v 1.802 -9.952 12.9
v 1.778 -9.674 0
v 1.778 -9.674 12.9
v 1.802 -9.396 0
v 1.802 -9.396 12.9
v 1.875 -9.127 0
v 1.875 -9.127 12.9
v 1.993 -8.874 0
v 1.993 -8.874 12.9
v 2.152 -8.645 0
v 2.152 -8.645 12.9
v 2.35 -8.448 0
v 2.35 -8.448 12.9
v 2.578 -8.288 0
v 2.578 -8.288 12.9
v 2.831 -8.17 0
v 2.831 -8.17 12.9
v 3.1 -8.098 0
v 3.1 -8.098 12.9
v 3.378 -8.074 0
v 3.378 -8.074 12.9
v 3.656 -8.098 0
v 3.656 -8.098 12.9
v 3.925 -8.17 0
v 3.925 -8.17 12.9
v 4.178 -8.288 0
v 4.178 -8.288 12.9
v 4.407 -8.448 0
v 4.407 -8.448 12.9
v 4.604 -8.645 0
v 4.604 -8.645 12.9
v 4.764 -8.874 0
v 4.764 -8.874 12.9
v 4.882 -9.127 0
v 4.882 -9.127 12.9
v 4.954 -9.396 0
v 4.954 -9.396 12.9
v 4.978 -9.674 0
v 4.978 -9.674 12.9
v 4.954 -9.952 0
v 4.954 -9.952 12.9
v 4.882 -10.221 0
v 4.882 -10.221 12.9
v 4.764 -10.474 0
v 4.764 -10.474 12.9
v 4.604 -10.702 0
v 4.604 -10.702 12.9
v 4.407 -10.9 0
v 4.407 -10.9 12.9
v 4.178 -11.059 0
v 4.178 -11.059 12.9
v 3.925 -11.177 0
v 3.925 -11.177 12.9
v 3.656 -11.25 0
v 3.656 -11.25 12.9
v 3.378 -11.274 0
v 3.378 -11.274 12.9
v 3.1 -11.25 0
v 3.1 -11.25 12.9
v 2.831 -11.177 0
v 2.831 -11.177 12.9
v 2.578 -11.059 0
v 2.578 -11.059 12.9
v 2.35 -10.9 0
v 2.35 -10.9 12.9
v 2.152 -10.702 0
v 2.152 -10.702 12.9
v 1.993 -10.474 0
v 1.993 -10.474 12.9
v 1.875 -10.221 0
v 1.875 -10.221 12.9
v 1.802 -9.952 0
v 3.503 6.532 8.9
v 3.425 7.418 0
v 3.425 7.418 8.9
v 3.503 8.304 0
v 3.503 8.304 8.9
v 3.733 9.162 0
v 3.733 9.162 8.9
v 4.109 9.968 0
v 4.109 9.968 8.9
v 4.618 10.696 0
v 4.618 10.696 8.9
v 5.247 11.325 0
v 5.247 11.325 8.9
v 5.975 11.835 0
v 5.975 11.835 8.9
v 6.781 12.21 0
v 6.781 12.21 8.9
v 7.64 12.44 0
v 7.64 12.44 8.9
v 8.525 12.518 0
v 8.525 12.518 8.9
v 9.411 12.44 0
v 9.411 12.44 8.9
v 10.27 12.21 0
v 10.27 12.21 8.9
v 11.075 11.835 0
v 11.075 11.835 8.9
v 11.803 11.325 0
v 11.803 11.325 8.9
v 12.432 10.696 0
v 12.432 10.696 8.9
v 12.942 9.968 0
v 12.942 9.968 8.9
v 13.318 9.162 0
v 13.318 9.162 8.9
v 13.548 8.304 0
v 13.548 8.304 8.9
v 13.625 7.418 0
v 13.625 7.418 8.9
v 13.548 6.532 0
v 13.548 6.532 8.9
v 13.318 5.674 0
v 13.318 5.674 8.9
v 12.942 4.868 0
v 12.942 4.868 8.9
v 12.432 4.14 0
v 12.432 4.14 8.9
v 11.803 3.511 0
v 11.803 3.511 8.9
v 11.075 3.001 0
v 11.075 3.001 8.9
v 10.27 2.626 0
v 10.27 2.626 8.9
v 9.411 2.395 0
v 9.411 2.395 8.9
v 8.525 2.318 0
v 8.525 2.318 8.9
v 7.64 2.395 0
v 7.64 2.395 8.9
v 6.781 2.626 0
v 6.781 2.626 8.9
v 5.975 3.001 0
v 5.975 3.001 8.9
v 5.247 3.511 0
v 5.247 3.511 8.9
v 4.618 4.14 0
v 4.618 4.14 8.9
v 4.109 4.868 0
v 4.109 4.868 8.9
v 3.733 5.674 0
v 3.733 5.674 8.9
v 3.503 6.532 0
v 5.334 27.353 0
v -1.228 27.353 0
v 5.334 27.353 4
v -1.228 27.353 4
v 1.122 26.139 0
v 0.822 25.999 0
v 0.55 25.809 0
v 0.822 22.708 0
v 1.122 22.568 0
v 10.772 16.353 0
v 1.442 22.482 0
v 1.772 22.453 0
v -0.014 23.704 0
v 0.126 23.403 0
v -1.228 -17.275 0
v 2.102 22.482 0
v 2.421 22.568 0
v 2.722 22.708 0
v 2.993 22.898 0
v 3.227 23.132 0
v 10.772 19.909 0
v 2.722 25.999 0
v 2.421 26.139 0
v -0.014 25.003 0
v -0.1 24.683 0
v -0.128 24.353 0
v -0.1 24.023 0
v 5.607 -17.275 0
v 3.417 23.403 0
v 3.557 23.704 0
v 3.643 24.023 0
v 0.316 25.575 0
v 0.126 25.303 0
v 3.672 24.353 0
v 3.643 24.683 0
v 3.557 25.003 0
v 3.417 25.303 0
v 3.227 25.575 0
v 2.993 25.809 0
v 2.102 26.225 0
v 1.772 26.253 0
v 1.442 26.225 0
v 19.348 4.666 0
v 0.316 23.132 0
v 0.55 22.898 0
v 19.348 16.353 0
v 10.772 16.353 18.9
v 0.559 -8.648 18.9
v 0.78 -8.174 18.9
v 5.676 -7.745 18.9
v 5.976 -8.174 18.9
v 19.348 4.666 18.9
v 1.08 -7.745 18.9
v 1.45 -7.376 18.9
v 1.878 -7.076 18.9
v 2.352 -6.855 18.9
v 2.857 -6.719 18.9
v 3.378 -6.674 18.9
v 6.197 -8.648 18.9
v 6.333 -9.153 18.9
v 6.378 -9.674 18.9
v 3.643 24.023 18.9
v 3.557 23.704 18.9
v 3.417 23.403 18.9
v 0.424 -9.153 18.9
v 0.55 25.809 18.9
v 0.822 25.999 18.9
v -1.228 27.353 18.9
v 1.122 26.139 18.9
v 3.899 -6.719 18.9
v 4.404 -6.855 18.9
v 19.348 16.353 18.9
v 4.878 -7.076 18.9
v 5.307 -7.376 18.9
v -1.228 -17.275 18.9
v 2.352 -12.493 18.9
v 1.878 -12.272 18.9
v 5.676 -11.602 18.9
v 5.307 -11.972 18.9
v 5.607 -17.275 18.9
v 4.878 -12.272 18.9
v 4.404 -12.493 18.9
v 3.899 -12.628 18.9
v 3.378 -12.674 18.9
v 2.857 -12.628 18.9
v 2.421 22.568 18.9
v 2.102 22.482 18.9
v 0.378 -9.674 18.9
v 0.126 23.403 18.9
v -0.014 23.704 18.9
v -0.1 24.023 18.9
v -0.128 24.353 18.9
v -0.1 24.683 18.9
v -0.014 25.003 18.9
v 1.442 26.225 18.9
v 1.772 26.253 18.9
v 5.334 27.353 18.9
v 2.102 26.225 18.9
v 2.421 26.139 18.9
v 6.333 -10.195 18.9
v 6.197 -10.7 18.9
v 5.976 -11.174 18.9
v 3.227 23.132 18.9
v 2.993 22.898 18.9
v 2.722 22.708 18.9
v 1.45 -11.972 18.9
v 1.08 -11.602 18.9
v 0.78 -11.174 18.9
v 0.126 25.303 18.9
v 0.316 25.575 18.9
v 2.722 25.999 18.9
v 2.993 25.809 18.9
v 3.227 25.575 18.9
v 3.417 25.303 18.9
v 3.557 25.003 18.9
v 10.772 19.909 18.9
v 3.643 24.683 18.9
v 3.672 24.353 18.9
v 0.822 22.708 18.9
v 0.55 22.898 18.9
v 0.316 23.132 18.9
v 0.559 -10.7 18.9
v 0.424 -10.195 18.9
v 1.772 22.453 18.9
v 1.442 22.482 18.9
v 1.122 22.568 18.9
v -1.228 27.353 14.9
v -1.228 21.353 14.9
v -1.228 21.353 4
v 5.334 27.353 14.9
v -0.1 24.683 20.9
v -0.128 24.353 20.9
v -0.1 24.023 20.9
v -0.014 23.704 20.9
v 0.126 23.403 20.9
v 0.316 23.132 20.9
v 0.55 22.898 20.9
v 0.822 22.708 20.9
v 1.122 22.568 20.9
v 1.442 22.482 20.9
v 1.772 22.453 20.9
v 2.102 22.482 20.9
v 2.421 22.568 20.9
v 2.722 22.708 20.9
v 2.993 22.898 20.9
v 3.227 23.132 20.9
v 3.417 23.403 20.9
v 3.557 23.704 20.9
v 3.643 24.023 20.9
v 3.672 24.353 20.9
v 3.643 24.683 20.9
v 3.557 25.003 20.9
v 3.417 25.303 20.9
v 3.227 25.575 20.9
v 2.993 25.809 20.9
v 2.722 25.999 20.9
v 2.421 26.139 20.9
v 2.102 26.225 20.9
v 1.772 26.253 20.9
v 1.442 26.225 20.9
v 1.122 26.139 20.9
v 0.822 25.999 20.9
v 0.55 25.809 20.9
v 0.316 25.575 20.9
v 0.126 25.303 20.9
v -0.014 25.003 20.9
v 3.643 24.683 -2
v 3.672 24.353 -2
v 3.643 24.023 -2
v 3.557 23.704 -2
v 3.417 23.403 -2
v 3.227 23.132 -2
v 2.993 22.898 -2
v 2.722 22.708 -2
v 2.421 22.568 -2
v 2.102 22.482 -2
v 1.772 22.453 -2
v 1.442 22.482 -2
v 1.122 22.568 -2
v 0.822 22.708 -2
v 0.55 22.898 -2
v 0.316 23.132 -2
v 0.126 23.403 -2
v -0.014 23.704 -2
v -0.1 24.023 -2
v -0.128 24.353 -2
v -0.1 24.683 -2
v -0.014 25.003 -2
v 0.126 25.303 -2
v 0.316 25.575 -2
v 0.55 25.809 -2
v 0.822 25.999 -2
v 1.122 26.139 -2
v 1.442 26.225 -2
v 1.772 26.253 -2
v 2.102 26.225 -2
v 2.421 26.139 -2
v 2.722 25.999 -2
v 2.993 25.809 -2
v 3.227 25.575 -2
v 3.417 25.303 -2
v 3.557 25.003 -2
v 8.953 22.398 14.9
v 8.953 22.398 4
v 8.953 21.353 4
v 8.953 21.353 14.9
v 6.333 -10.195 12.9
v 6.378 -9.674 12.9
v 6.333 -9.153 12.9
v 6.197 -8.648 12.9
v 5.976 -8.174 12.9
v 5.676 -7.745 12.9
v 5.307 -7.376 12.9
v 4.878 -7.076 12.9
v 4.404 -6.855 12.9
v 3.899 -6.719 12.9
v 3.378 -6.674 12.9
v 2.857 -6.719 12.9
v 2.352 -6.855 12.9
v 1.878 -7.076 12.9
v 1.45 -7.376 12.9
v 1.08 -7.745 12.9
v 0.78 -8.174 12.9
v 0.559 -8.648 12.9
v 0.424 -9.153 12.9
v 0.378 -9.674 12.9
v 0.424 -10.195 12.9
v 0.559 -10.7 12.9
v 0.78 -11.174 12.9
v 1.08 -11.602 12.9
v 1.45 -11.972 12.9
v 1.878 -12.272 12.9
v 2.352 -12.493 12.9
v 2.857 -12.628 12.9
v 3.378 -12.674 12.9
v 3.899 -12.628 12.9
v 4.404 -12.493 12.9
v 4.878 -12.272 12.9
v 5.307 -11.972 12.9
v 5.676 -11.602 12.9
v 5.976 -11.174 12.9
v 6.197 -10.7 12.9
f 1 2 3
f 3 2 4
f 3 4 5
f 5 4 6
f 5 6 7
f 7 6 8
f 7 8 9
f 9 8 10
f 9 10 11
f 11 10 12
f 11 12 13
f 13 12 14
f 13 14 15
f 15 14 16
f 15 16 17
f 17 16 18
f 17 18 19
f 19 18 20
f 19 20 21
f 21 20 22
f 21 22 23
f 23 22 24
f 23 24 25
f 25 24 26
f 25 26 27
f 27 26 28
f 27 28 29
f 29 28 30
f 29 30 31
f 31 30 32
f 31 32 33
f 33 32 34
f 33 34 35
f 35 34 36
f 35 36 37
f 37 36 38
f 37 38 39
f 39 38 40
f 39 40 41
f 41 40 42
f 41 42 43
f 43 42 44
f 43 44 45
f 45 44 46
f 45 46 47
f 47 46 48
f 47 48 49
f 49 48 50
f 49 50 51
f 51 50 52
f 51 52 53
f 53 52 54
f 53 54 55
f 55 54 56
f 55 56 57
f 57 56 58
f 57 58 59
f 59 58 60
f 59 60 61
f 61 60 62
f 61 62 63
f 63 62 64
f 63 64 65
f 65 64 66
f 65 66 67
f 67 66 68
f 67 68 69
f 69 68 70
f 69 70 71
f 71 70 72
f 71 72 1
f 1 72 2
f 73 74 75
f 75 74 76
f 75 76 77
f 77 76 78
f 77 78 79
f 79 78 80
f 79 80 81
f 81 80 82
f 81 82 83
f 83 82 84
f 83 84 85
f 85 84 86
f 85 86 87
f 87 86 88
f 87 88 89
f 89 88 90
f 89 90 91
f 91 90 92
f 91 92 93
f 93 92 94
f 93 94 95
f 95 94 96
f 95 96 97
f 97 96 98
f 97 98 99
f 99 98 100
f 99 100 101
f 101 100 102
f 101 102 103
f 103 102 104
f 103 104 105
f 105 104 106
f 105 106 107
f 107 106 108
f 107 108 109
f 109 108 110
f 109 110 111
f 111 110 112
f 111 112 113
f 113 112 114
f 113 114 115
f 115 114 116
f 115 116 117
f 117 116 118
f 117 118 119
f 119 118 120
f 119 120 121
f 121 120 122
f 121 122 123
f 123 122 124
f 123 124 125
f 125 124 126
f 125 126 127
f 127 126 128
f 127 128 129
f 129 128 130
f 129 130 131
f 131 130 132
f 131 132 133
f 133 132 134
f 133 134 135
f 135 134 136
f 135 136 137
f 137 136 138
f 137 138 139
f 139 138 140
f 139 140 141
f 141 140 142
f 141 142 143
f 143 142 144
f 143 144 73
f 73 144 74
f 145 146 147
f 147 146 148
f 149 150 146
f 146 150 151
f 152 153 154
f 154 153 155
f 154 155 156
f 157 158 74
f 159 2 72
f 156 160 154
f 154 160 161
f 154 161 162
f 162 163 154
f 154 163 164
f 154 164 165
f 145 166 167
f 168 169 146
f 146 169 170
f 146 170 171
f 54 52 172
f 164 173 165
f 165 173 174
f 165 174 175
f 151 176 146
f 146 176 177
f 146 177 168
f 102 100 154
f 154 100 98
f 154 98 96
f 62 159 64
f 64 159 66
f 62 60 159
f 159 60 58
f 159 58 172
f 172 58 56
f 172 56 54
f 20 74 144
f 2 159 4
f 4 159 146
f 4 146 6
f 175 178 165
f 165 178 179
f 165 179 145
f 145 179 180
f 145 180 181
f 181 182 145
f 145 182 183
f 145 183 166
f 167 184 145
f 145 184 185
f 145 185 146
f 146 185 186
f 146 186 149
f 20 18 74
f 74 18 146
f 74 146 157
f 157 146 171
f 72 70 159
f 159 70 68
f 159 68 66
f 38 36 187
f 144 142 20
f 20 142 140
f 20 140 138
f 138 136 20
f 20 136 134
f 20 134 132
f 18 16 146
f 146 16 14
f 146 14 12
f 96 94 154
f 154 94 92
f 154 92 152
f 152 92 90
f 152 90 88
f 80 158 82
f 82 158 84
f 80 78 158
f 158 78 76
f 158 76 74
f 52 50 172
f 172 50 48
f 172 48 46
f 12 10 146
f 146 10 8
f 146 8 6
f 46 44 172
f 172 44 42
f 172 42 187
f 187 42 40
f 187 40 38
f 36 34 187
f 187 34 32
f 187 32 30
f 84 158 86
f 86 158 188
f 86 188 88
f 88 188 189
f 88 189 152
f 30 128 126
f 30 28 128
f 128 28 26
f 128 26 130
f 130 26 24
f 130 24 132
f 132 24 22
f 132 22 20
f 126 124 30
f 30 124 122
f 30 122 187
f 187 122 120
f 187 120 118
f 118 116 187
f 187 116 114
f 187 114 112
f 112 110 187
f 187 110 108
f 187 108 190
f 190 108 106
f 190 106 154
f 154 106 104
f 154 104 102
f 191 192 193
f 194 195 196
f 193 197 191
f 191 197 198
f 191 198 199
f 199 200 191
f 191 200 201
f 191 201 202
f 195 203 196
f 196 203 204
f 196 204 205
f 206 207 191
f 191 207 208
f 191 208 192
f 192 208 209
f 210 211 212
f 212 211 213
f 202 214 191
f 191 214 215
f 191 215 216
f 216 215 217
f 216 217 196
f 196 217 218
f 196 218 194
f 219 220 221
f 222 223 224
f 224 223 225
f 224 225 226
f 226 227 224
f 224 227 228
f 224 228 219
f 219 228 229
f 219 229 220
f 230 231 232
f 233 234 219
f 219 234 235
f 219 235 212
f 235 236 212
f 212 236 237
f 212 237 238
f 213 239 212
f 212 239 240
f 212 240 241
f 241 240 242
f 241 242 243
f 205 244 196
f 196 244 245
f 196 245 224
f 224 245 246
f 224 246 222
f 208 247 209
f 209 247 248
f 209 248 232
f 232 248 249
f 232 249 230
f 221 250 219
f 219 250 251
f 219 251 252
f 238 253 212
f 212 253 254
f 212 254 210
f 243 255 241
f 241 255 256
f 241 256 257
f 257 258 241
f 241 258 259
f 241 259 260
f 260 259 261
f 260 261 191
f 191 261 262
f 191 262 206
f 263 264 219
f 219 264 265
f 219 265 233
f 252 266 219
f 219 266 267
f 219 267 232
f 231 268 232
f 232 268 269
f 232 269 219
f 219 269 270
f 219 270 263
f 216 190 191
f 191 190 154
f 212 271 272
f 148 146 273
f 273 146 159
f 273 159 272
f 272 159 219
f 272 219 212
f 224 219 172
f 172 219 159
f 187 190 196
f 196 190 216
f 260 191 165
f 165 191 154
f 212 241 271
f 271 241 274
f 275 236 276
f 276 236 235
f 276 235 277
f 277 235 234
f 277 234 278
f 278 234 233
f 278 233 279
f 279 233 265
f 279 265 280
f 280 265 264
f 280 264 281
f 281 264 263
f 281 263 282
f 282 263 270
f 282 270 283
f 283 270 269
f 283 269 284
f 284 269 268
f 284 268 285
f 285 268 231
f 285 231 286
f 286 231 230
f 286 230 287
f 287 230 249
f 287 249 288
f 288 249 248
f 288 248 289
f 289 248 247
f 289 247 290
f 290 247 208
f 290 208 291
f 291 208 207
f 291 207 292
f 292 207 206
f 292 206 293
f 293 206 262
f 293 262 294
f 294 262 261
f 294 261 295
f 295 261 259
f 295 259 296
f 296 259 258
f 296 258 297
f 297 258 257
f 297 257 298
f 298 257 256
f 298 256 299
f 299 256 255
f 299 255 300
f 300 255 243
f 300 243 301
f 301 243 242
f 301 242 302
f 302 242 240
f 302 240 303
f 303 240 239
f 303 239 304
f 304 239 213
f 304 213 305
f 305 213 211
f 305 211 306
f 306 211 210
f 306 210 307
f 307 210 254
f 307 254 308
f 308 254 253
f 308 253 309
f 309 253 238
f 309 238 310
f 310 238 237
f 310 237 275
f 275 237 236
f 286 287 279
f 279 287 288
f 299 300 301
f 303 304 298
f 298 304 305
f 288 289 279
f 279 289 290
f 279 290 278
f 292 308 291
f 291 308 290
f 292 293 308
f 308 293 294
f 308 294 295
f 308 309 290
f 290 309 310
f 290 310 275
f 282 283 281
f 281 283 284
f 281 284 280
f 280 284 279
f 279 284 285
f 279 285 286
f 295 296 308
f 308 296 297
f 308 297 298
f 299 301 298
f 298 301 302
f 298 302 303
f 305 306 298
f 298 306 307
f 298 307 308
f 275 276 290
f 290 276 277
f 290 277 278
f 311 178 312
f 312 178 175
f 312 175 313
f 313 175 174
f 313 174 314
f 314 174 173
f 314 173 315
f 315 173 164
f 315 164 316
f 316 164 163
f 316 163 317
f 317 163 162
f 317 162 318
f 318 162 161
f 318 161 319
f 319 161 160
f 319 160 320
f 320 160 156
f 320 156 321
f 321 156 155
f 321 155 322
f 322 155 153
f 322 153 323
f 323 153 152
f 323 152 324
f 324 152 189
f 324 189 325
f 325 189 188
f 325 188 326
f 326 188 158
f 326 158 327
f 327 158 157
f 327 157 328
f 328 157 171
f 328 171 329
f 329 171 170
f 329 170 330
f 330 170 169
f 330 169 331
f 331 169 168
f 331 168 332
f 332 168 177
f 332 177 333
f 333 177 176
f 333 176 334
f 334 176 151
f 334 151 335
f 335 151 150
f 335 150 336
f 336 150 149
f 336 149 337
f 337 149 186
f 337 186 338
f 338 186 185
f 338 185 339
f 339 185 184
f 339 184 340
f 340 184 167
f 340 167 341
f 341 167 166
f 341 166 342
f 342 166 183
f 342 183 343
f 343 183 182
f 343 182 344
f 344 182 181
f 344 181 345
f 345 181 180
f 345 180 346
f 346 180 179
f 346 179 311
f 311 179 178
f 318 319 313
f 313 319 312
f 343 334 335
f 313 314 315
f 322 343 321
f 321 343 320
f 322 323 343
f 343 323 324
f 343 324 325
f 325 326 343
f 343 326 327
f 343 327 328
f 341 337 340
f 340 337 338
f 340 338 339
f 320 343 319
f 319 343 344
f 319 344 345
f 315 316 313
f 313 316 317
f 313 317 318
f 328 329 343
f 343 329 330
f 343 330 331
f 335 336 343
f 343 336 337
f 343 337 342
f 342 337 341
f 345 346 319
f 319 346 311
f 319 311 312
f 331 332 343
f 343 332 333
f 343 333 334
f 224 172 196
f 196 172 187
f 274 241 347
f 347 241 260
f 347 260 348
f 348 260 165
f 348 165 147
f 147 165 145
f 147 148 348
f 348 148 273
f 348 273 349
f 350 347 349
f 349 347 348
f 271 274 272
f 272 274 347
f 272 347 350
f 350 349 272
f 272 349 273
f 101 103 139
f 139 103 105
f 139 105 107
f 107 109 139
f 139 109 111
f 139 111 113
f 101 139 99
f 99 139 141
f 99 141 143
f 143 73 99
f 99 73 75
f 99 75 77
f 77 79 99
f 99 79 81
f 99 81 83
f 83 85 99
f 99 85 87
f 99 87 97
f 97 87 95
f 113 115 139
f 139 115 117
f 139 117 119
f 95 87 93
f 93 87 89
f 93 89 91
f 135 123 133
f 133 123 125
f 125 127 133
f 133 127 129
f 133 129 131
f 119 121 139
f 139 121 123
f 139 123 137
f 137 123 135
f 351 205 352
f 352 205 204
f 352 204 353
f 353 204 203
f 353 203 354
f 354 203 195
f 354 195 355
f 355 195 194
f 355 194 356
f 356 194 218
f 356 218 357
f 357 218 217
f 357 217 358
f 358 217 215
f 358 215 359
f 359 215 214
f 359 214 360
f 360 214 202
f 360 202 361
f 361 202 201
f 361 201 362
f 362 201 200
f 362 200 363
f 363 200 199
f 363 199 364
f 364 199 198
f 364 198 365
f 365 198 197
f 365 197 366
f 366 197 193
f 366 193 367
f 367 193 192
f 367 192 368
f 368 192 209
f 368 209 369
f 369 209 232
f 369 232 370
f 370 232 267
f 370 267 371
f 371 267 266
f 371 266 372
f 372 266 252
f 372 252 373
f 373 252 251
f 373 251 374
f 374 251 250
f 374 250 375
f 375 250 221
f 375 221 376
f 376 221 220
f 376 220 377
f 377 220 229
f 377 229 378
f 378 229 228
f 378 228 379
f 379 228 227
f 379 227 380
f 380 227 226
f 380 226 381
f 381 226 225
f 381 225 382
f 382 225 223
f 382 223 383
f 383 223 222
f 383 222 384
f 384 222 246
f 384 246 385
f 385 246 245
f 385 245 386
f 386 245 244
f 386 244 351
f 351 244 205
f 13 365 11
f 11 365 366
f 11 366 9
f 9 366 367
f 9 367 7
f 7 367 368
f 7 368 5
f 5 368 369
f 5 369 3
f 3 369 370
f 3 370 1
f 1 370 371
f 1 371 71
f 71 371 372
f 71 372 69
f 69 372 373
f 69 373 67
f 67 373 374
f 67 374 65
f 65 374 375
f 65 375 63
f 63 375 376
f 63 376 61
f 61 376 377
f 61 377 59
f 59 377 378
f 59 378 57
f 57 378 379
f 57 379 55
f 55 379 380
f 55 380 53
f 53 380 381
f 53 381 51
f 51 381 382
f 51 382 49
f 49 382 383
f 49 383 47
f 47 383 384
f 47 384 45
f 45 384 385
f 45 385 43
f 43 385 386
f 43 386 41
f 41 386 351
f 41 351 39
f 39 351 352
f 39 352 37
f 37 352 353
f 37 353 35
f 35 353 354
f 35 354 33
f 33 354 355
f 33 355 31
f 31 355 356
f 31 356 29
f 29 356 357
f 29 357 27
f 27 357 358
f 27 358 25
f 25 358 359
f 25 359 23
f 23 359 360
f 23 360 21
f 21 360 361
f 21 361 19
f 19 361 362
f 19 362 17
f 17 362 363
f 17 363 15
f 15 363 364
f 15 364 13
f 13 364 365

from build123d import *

# Parameters (mm, degrees)
SKETCH1_W           = 20.576108637
SKETCH1_H           = 33.628117847
SKETCH1_R           = 5.1
SKETCH1_R_2         = 1.6
BOSS_EXTRUDE1_DEPTH = 18.9
SKETCH3_W           = 12
SKETCH3_H           = 18.9
BOSS_EXTRUDE3_DEPTH = 11
SKETCH4_R           = 1.9
BOSS_EXTRUDE6_DEPTH = 2
BOSS_EXTRUDE7_START = 2
SKETCH5_R           = 1.9
BOSS_EXTRUDE7_DEPTH = 2
CUT_EXTRUDE1_DEPTH  = 40.488623232
CUT_EXTRUDE2_DEPTH  = 40.488623232
SKETCH8_W           = 10.181570082
SKETCH8_H           = 10.9
CUT_EXTRUDE3_DEPTH  = 6
SKETCH9_R           = 6.144425542
BOSS_EXTRUDE8_DEPTH = 10
SKETCH10_R          = 3
CUT_EXTRUDE4_DEPTH  = 6


with BuildPart() as part:
    # Sketch1 → Boss-Extrude1 (new body)
    with BuildSketch(Plane.XY):
        with Locations((9.059629922, -0.460659149)):
            Rectangle(SKETCH1_W, SKETCH1_H)
        with Locations((8.525263921, 7.417965689)):
            Circle(SKETCH1_R, mode=Mode.SUBTRACT)
        with Locations((3.37816709, -9.67384212)):
            Circle(SKETCH1_R_2, mode=Mode.SUBTRACT)
    extrude(amount=BOSS_EXTRUDE1_DEPTH)

    # Sketch3 → Boss-Extrude3 (add)
    with BuildSketch(Plane(origin=(0, 16.353399775, 0), x_dir=(1, 0, 0), z_dir=(0, 1, 0))):
        with Locations((4.771575604, -9.45)):
            Rectangle(SKETCH3_W, SKETCH3_H)
    extrude(amount=BOSS_EXTRUDE3_DEPTH)

    # Sketch4 → Boss-Extrude6 (add)
    with BuildSketch(Plane.XY.offset(18.9)):
        with Locations((1.771575604, 24.353399775)):
            Circle(SKETCH4_R)
    extrude(amount=BOSS_EXTRUDE6_DEPTH)

    # Sketch5 → Boss-Extrude7 (add)
    with BuildSketch(Plane(origin=(0, 0, 0), x_dir=(-1, 0, 0), z_dir=(0, 0, -1)).offset(BOSS_EXTRUDE7_START)):
        with Locations(Location((-1.771575604, 24.353399775, 0), (0, 0, 180))):
            Circle(SKETCH5_R)
    extrude(amount=-BOSS_EXTRUDE7_DEPTH)

    # Sketch6 → Cut-Extrude1 (cut, through all)
    with BuildSketch(Plane.XY.offset(18.9)):
        Polygon((5.606824739, -17.274718072), (19.347684241, 4.666075764), (19.347684241, -17.274718072), align=None)
    extrude(amount=-CUT_EXTRUDE1_DEPTH, mode=Mode.SUBTRACT)

    # Sketch7 → Cut-Extrude2 (cut, through all)
    with BuildSketch(Plane.XY.offset(18.9)):
        Polygon((5.334321987, 27.353399775), (10.771575604, 19.908581769), (10.771575604, 27.353399775), align=None)
    extrude(amount=-CUT_EXTRUDE2_DEPTH, mode=Mode.SUBTRACT)

    # Sketch8 → Cut-Extrude3 (cut)
    with BuildSketch(Plane(origin=(0, 27.353399775, 0), x_dir=(1, 0, 0), z_dir=(0, 1, 0))):
        with Locations((3.862360645, -9.45)):
            Rectangle(SKETCH8_W, SKETCH8_H)
    extrude(amount=-CUT_EXTRUDE3_DEPTH, mode=Mode.SUBTRACT)

    # Sketch9 → Boss-Extrude8 (add)
    with BuildSketch(Plane.XY.offset(18.9)):
        with Locations((8.525263921, 7.417965689)):
            Circle(SKETCH9_R)
    extrude(amount=-BOSS_EXTRUDE8_DEPTH)

    # Sketch10 → Cut-Extrude4 (cut)
    with BuildSketch(Plane.XY.offset(18.9)):
        with Locations((3.37816709, -9.67384212)):
            Circle(SKETCH10_R)
    extrude(amount=-CUT_EXTRUDE4_DEPTH, mode=Mode.SUBTRACT)


solid = part.part
